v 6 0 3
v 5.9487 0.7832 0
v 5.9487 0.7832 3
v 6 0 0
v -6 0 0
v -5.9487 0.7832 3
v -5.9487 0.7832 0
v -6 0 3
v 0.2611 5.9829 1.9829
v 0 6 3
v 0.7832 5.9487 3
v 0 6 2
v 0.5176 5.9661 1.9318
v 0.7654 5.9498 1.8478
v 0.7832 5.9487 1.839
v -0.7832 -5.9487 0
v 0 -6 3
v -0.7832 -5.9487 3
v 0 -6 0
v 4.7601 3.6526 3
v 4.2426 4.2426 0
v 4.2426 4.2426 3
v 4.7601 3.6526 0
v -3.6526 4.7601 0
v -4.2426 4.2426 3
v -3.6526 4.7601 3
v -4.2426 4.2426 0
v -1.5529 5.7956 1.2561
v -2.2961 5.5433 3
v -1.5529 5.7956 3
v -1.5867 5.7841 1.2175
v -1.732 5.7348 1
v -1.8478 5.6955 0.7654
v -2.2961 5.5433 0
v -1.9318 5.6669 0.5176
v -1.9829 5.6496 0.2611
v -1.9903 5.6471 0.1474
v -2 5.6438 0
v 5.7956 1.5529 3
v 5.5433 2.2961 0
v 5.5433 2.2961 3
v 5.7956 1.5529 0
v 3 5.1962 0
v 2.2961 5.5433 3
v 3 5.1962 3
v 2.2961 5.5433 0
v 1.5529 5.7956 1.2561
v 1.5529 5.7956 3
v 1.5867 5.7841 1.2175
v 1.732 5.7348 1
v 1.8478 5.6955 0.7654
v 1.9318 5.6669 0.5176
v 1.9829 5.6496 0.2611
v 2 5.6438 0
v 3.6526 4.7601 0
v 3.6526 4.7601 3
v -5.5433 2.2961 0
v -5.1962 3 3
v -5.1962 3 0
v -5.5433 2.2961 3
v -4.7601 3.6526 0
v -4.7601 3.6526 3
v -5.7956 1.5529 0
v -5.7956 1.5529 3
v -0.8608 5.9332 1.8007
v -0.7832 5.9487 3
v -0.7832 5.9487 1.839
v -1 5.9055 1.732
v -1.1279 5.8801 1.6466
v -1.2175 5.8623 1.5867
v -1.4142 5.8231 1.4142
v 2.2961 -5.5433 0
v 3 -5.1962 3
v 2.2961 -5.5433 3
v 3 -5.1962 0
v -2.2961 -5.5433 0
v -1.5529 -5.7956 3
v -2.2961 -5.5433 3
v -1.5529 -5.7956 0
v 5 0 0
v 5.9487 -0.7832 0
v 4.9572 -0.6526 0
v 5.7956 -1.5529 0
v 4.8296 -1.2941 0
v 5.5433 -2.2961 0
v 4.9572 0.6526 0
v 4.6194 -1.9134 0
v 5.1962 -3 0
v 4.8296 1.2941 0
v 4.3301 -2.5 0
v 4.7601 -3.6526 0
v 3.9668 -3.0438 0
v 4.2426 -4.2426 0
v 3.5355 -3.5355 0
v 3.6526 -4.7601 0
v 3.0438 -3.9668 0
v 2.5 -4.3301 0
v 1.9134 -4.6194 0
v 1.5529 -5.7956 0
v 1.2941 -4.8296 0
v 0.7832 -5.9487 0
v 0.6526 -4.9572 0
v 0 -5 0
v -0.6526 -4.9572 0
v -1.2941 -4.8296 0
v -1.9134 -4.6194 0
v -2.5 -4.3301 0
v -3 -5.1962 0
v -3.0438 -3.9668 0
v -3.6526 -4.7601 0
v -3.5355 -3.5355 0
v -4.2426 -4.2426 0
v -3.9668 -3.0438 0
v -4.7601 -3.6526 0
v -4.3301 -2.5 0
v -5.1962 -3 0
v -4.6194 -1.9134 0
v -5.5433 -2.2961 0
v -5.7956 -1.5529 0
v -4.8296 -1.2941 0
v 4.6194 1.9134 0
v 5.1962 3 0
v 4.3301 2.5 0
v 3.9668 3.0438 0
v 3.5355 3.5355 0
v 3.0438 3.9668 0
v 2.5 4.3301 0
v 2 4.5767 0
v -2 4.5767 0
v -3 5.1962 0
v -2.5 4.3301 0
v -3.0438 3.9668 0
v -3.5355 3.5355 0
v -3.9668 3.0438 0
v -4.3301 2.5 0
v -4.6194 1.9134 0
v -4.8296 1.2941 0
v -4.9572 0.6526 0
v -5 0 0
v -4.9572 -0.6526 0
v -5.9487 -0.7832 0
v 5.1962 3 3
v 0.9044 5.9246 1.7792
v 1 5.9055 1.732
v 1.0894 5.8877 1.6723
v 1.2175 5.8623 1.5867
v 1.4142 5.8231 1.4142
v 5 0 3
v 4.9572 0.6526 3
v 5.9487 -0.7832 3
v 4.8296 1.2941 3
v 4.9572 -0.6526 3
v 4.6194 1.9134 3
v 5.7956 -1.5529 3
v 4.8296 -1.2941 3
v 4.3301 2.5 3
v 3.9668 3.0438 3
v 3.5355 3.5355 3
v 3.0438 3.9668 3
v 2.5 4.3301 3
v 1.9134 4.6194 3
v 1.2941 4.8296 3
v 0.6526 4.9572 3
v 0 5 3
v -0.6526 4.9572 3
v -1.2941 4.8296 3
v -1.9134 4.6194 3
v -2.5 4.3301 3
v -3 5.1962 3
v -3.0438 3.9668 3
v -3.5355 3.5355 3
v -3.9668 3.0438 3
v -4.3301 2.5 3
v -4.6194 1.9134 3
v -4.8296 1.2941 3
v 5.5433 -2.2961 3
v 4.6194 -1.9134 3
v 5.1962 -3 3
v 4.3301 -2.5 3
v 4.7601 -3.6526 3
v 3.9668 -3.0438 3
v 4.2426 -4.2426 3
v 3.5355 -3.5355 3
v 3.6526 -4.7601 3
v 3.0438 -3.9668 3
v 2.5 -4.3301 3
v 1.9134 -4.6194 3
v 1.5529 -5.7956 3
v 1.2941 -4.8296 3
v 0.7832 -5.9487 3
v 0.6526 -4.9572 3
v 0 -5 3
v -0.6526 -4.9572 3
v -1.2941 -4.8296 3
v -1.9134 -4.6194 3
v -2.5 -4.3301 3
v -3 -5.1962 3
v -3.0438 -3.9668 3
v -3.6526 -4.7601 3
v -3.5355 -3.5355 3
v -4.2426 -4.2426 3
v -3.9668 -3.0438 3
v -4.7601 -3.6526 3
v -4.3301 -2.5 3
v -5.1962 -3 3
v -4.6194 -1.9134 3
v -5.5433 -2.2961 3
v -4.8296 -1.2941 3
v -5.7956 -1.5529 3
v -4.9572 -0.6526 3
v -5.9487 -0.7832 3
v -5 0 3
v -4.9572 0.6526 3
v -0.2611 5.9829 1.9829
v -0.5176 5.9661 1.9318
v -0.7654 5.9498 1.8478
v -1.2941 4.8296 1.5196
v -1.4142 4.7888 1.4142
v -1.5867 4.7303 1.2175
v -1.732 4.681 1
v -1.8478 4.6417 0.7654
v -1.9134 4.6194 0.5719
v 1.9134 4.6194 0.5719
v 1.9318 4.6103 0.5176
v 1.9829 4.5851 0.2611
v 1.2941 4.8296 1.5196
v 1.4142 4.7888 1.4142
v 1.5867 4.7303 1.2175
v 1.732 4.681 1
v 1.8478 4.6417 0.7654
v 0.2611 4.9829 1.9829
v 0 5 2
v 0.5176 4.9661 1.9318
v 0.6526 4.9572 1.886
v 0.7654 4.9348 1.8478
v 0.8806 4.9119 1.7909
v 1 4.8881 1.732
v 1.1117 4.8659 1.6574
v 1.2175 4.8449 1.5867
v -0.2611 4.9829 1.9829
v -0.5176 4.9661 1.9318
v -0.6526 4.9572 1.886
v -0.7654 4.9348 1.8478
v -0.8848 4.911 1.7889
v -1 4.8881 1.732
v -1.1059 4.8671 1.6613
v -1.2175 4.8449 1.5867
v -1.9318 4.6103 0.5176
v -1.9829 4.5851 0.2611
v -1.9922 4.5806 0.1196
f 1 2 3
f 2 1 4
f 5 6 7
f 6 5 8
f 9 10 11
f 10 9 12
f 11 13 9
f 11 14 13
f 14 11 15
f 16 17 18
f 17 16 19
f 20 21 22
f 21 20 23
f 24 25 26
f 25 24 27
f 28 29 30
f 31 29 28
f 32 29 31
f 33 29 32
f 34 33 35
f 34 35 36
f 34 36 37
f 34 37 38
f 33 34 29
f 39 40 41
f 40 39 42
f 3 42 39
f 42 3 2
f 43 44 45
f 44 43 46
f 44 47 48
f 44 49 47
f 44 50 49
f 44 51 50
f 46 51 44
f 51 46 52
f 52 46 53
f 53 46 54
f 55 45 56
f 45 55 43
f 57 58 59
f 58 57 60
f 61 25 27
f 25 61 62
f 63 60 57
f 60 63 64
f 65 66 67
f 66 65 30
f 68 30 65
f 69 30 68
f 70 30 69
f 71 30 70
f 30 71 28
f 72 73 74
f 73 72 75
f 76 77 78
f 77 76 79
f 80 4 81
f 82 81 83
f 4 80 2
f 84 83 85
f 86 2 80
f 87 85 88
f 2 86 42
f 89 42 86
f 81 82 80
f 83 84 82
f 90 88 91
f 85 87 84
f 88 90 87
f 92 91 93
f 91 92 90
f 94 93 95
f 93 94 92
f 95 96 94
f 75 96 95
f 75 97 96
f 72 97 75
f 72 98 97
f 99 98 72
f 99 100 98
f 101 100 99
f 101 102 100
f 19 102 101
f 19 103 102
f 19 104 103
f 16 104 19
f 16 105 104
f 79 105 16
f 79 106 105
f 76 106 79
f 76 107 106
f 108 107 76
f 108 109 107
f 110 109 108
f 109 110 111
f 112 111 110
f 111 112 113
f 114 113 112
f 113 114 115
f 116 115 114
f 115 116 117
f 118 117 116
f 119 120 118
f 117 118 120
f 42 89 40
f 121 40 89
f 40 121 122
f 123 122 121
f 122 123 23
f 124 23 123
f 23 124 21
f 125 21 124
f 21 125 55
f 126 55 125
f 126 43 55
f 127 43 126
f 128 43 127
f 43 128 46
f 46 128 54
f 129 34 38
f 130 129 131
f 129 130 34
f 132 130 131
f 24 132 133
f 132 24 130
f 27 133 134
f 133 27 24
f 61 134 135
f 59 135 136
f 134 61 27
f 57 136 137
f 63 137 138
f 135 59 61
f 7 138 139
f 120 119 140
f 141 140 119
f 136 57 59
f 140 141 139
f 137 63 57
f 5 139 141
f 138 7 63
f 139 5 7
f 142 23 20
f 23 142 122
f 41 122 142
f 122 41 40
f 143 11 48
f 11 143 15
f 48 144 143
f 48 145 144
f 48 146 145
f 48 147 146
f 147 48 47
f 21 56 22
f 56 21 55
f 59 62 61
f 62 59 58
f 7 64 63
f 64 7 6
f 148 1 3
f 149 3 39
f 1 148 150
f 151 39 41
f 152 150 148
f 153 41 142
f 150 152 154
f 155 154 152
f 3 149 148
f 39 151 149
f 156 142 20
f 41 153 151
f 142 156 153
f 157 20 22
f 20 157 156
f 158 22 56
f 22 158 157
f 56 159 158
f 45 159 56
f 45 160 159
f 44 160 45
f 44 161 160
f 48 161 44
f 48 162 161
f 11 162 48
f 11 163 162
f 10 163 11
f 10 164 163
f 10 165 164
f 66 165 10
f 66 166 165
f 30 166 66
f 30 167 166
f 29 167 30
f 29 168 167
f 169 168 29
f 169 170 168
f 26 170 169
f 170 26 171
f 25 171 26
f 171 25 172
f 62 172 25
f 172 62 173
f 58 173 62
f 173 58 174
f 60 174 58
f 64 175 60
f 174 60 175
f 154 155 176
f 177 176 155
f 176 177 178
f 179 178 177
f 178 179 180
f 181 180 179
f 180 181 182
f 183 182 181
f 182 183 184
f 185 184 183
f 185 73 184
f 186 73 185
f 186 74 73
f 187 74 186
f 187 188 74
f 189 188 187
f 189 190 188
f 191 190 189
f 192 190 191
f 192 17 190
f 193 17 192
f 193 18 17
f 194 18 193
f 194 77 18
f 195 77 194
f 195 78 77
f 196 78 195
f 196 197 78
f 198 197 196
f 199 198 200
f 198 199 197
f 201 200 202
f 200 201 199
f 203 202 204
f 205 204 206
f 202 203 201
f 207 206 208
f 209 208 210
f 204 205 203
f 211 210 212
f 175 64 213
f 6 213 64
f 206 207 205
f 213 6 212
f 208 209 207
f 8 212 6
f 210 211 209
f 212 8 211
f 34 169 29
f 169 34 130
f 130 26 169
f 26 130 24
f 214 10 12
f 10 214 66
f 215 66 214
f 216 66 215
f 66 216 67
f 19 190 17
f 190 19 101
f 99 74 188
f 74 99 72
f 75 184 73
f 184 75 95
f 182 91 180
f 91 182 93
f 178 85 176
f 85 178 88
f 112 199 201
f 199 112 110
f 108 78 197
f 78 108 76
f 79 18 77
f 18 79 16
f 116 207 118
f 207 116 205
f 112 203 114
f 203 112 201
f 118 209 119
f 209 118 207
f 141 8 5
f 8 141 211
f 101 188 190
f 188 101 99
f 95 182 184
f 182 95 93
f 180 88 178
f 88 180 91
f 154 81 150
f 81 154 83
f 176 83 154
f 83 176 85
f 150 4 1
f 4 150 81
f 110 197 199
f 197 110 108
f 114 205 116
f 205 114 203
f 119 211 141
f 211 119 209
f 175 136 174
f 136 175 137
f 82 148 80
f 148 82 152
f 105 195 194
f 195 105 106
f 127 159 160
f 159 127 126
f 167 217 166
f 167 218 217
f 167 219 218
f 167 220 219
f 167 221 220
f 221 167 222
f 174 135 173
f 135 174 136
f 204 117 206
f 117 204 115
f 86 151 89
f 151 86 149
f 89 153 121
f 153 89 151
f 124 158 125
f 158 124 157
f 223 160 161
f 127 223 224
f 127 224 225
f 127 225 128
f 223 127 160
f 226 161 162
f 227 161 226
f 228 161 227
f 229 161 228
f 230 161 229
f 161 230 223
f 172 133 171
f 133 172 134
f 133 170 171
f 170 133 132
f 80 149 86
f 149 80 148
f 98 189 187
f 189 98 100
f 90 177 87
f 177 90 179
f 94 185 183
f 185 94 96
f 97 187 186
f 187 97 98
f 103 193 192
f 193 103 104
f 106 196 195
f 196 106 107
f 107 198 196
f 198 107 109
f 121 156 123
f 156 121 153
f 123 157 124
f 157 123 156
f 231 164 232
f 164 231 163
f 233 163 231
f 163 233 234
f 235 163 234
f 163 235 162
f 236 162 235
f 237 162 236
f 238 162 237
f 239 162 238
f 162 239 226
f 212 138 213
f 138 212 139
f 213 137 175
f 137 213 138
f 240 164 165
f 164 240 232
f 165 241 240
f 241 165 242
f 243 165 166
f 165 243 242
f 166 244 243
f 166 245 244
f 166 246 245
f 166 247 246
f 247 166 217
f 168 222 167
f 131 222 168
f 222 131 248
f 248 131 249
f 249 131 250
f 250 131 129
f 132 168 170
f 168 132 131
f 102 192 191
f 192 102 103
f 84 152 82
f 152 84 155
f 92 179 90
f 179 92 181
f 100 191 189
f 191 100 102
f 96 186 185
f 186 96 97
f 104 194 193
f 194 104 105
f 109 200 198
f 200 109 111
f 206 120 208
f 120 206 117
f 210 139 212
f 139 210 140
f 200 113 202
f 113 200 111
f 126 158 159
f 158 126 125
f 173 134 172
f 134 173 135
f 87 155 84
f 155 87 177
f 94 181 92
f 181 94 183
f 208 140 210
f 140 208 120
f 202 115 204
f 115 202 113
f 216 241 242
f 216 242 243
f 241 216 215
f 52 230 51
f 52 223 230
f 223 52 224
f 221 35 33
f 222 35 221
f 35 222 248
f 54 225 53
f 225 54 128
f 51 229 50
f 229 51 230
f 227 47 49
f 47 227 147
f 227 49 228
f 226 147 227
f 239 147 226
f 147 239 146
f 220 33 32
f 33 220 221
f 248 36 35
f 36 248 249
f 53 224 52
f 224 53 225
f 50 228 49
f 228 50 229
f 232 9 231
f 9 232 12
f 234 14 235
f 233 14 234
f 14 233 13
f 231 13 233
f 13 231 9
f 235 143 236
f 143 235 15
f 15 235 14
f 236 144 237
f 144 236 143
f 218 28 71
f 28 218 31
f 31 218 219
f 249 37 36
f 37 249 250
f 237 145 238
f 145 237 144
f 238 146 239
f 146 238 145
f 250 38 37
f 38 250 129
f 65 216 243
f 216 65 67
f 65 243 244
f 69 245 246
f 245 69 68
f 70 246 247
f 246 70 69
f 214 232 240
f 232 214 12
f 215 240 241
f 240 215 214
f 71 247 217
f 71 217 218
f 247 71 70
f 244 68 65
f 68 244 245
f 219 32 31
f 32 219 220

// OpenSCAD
// file: ../build_environments.scad
// build_environments.scad: modules to build level sections
//

module pool(diameter=10.0, wall_height=2.0, step_width=3.0, connections=[])
{
    difference() {
        union() {
        difference() {
            cylinder(h=0.5,r1=diameter+step_width,r2=diameter+step_width,$fn=48);
            translate([0,0,-0.1])
                cylinder(h=0.7,r1=diameter,r2=diameter,$fn=48);
        }
        difference() {
            cylinder(h=wall_height,r1=diameter+step_width+1.0,r2=diameter+step_width+1.0,$fn=48);
            translate([0,0,-0.1])
                cylinder(h=wall_height+0.2,r1=diameter+step_width,r2=diameter+step_width,$fn=48);
        }
        }
    
        for (c = connections)
        {
            rotate([0,90,0]) {
                angle = atan2(c[1],c[0]);
                rotate([-angle,0,0]) {
                    cylinder(h=diameter+5.0,r1=c[2],r2=c[2],$fn=48);
                }
            }
        }
    }
}

module straight(length=10.0, width=2.0, dy1=0.0, dy2=0.0, dz=0.0)
{
    dims = [0, 0, 0, 0, 0, (dz/length)];
    matrix = [
        [ 1, dims[0], dims[1], 0 ],
        [ dims[2], 1, dims[4], 0 ],
        [ dims[5], dims[3], 1, 0 ],
        [ 0, 0, 0, 1 ]
    ];
    multmatrix(matrix)
    difference() {
        translate([dy1,0,0])
        union() {
            rotate([0,90,0]) {
                difference() {
                    cylinder(h=(length-dy1-dy2),r1=width+1.0,r2=width+1.0,$fn=24);
                    translate([0,0,-0.1])
                        cylinder(h=(length-dy1-dy2+0.2),r1=width,r2=width,$fn=24);
                }
                difference() {
                    cylinder(h=1.0,r1=width+2.0,r2=width+2.0,$fn=24);
                    translate([0,0,-0.1])
                        cylinder(h=1.2,r1=width,r2=width,$fn=24);
                }
                translate([0,0,(length-dy1-dy2)-1.0]) {
                    difference() {
                        cylinder(h=1.0,r1=width+2.0,r2=width+2.0,$fn=24);
                        translate([0,0,-0.1])
                            cylinder(h=1.2,r1=width,r2=width,$fn=24);
                    }
                }
            }
        }
        translate([0,0,-(2*width+4.0)/2])
            cube([3*length,3*length,2*width+4.0],center=true);
    }
}

module curve(p0=[0,0], center=[0,0], dir=1, angle=0.0, width=2.0)
{
    radius = sqrt((p0[0]-center[0])*(p0[0]-center[0]) + (p0[1]-center[1])*(p0[1]-center[1]));
    if (dir == 0) {
        difference() {
            rotate([0,0,-90])
            difference() {
                rotate_extrude(angle = angle, convexity = 10, $fn=32)
                    translate([radius, 0, 0])
                        circle(r = width+1.0,$fn=24);
                rotate([0,0,-1.0])
                    rotate_extrude(angle = angle+2.0, convexity = 10, $fn=32)
                        translate([radius, 0, 0])
                            circle(r = width,$fn=24);
            }
            translate([0,0,-(2*width+4.0)/2])
                cube([5*radius,5*radius,2*width+4.0],center=true);
        }
    }
    else {
        difference() {
            rotate([0,0,90])
            difference() {
                rotate_extrude(angle = -angle, convexity = 10, $fn=32)
                    translate([radius, 0, 0])
                        circle(r = width+1.0,$fn=24);
                rotate([0,0,1.0])
                    rotate_extrude(angle = -angle-2.0, convexity = 10, $fn=32)
                        translate([radius, 0, 0])
                            circle(r = width,$fn=24);
            }
            translate([0,0,-(2*width+4.0)/2])
                cube([5*radius,5*radius,2*width+4.0],center=true);
        }
    }

}

// test pool
//pool(diameter=12.0000, wall_height=3.0000, step_width=3.0000, connections=[[0.0000,-26.0000,2.0000], [23.6074,0.0000,2.0000]]);

// test straight, slope
//straight(length=26.0000, width=2.0000, dy1=11.8322, dy2=6.7082, dz=0.0000);
//straight(length=29.1549, width=12.0000, dy1=0.0000, dy2=0.0000, dz=-15.0000);

// test curve
//curve(p0=[23.6074, 0.0000], center=[23.6074, 5.0000], dir=0, angle=60.1011, width=2.0000);
//curve(p0=[33.6426, 12.4219], center=[37.9771, 9.9295], dir=1, angle=120.4627, width=2.0000);
// main file
use <../build_environments.scad>;
pool(diameter=5.0000, wall_height=3.0000, step_width=0.0000, connections=[[0.0000,14.0000,2.0000]]);
